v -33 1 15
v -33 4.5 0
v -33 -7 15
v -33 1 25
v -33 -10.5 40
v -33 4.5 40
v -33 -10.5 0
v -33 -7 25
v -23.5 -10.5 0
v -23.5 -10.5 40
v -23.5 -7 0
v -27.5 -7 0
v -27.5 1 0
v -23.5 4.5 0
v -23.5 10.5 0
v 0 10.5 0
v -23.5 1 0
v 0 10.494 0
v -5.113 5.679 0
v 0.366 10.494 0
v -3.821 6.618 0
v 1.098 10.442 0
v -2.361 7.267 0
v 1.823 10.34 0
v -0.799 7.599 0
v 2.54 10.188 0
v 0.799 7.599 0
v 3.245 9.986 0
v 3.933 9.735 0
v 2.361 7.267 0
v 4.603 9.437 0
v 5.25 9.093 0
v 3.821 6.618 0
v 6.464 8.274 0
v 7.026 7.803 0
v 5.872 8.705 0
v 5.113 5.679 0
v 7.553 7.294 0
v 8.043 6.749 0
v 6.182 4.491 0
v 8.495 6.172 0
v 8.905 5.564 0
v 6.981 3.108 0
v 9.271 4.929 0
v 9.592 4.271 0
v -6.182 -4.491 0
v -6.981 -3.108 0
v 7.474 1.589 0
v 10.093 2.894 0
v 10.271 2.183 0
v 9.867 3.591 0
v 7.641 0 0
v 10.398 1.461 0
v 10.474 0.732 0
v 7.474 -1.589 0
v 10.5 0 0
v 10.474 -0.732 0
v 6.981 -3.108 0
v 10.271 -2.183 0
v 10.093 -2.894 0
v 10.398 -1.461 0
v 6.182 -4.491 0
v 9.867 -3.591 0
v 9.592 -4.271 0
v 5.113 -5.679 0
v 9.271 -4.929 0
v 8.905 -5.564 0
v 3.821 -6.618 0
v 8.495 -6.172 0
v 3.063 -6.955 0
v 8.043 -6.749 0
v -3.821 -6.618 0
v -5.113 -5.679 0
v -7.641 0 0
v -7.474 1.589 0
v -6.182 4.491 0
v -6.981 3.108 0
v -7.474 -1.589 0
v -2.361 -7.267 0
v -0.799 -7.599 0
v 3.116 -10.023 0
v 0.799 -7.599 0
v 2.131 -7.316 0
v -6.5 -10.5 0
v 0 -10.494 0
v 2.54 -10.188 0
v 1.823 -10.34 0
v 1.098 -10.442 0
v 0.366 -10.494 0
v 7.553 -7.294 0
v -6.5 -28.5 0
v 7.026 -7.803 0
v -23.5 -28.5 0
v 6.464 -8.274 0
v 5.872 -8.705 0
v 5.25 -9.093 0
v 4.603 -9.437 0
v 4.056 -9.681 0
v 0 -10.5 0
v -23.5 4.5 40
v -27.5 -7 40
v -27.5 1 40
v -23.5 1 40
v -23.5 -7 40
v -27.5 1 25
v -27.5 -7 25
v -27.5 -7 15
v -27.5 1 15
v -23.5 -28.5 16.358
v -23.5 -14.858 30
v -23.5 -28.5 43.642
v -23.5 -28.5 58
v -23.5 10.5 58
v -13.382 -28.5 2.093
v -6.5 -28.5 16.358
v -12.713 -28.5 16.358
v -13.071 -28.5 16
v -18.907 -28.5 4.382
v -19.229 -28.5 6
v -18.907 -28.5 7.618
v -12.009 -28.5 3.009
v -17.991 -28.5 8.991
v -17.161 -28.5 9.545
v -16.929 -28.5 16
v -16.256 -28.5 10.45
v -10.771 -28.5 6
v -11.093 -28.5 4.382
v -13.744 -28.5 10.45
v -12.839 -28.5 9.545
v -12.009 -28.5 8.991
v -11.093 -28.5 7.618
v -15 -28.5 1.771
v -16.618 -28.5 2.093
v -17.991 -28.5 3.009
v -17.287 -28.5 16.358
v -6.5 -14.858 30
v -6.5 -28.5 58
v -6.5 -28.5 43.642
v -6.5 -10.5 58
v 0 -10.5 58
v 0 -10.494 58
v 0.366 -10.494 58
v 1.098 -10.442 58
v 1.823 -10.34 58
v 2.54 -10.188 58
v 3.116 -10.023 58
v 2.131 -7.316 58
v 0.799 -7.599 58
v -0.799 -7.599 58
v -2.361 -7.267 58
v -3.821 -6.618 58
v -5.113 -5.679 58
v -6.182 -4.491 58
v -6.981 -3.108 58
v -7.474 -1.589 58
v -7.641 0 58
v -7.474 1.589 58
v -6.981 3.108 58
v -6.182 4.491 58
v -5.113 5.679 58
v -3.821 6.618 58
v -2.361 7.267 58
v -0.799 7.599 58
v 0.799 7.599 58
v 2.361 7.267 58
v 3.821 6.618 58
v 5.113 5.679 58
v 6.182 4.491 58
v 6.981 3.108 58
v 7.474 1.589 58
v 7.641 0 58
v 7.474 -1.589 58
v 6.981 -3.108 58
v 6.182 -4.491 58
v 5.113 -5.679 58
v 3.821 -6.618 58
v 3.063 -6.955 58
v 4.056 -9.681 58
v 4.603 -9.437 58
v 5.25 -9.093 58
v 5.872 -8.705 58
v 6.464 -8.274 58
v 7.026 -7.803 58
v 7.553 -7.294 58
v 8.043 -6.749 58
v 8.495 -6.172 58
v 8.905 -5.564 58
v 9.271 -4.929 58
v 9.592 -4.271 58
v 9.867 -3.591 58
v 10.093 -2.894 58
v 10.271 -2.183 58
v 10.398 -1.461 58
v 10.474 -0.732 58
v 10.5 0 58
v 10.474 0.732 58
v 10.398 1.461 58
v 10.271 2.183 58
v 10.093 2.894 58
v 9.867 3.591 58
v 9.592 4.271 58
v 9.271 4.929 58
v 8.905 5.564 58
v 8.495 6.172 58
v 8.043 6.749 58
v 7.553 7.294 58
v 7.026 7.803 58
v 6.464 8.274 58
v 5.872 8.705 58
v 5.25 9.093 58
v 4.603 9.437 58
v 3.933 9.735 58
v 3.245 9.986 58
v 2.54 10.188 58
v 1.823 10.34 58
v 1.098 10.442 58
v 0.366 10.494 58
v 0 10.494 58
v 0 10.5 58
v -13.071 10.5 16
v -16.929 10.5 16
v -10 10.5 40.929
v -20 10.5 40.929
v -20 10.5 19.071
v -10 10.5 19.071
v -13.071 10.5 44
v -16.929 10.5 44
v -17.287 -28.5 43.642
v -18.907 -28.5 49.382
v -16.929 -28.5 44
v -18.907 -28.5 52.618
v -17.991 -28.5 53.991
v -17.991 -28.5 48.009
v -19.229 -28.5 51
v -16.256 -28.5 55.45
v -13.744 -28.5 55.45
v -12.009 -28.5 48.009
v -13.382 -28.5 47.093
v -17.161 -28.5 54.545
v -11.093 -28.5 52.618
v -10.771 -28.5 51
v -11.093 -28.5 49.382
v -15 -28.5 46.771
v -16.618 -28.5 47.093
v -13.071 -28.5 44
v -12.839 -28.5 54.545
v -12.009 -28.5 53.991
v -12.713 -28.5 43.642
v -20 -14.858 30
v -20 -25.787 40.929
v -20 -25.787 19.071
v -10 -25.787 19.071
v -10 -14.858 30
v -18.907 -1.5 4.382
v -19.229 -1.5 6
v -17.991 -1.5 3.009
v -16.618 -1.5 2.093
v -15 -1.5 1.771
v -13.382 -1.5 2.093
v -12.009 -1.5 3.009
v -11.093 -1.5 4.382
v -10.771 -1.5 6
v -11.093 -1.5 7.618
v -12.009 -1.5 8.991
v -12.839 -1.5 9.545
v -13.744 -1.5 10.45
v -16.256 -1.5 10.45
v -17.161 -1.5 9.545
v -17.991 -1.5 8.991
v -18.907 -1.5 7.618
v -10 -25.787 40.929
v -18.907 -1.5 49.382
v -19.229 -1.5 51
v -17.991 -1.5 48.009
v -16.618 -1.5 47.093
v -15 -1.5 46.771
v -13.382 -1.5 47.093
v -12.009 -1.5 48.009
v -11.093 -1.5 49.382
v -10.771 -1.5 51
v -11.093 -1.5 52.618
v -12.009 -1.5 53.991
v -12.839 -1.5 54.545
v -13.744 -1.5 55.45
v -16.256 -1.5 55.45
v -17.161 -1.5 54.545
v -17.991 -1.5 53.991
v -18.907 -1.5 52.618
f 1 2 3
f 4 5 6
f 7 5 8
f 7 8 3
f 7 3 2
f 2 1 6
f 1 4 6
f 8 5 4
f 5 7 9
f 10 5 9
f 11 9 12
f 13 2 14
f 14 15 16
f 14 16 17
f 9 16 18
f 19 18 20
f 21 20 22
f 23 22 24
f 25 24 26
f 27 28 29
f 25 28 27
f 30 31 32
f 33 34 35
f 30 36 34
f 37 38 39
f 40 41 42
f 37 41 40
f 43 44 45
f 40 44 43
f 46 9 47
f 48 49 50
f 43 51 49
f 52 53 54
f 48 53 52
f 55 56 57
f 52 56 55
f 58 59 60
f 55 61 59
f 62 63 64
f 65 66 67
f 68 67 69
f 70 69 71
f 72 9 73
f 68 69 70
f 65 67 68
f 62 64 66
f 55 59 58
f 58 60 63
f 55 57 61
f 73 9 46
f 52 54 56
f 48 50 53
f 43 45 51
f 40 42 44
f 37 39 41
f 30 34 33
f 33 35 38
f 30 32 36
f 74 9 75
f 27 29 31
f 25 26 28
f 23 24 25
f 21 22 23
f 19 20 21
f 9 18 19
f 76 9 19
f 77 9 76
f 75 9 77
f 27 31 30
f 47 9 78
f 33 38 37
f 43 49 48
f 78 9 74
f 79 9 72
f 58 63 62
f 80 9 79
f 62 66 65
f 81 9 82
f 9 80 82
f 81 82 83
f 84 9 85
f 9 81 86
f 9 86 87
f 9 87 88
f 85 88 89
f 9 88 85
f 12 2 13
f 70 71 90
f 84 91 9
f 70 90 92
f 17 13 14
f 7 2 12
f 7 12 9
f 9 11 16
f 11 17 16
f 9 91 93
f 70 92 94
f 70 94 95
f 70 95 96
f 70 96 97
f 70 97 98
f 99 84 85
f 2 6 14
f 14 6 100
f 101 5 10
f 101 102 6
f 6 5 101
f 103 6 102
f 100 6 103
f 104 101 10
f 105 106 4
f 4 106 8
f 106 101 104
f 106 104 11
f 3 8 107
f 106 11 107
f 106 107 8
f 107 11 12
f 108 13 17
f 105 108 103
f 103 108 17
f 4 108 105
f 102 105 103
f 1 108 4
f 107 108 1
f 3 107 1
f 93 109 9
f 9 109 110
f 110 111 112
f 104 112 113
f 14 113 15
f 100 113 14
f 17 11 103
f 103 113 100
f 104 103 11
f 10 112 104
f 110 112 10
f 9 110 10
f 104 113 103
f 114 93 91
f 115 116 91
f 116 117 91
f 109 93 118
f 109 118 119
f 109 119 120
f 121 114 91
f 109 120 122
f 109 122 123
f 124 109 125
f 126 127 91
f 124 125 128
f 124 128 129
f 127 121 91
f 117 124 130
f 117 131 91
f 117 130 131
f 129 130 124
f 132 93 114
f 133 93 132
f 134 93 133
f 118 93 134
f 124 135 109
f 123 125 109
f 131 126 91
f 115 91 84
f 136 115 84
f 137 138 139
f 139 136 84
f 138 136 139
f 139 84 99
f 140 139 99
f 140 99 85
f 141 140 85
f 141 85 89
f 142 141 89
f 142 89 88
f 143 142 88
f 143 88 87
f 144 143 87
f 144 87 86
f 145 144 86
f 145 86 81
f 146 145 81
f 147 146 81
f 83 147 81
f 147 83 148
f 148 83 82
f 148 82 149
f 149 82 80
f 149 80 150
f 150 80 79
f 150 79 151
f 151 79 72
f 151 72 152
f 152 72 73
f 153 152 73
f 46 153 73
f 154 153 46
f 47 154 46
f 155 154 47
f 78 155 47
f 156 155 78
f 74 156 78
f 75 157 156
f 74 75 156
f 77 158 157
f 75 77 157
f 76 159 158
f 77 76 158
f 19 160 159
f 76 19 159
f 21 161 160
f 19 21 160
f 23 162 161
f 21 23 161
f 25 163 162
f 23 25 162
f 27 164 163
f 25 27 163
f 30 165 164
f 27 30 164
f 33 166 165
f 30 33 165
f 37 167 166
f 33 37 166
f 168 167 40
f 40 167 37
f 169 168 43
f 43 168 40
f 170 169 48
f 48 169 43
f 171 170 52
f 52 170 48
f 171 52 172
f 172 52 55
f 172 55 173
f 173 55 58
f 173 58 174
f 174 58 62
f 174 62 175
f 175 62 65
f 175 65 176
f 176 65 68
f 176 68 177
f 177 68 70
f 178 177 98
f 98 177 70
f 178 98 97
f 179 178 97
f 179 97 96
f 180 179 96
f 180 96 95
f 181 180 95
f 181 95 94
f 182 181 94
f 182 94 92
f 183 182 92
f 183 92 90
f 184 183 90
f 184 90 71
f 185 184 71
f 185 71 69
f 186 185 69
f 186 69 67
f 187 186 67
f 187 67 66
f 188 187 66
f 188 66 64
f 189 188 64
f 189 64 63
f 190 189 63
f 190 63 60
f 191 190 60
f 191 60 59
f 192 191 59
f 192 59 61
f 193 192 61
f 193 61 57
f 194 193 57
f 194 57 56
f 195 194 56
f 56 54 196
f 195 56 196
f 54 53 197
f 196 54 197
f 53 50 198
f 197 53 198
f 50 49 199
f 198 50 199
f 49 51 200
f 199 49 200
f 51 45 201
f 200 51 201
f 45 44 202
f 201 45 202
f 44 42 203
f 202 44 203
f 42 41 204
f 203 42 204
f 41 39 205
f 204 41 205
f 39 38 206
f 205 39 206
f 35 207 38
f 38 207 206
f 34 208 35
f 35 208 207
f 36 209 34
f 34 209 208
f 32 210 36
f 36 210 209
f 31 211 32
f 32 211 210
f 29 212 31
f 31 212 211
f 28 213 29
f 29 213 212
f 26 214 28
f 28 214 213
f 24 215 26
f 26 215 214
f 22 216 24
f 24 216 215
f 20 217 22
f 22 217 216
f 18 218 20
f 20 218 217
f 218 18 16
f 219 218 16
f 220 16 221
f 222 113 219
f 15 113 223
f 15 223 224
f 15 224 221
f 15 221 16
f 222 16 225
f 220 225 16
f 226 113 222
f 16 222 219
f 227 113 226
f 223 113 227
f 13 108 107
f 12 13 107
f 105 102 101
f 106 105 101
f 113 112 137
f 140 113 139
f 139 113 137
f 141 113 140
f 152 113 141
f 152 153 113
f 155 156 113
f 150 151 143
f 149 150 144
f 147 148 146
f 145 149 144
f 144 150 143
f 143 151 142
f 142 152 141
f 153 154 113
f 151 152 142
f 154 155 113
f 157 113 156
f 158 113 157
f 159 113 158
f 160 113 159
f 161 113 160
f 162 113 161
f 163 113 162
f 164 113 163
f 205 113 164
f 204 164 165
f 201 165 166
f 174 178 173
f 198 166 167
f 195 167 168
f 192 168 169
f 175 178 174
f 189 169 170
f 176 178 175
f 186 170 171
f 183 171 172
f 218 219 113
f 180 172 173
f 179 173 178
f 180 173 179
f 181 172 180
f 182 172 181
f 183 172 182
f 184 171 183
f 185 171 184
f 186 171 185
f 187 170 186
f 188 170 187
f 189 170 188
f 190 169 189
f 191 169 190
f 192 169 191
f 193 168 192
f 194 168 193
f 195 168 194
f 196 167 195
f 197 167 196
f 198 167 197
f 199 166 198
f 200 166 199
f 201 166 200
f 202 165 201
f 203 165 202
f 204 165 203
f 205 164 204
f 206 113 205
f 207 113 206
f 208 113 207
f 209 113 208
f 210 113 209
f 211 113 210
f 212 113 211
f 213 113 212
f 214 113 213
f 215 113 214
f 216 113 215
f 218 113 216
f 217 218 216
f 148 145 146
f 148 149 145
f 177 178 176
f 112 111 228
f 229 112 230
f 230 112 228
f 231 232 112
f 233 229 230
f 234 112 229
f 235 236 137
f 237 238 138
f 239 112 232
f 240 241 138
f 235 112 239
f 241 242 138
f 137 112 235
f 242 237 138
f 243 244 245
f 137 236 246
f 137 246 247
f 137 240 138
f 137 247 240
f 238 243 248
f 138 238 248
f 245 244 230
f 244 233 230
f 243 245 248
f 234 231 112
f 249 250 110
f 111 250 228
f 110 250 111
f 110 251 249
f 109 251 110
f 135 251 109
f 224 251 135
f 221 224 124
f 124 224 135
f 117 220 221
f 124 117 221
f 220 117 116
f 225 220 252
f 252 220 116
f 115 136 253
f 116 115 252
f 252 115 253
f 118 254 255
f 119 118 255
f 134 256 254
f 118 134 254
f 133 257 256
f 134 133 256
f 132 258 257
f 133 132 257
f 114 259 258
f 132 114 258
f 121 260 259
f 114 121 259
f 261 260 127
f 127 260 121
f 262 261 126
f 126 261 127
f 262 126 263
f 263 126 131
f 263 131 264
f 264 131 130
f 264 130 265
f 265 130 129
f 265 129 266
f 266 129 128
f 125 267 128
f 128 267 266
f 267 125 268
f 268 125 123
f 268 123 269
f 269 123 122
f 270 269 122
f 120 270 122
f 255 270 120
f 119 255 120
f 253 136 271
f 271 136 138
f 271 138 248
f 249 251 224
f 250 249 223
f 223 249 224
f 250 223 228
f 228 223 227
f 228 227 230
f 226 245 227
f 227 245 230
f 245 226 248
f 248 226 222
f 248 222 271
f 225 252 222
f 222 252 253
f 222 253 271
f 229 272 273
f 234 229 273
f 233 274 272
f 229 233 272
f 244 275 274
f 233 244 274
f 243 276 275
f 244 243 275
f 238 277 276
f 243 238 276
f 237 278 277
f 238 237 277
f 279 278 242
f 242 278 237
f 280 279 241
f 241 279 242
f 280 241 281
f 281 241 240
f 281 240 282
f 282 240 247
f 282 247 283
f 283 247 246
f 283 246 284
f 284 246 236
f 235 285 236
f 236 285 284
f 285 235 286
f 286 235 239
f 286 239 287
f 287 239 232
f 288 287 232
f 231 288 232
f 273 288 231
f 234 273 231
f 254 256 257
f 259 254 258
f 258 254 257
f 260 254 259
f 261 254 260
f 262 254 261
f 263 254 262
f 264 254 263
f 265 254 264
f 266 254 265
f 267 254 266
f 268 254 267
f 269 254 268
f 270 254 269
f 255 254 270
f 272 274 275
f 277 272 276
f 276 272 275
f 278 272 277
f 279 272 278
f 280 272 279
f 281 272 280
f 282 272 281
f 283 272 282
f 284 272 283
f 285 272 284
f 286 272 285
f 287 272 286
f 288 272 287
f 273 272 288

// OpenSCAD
// file: polyholes.scad
// MK2Clone r2
// based on Mendel90
//
// GNU GPL v2
// nop.head@gmail.com
// hydraraptor.blogspot.com
//
// See http://hydraraptor.blogspot.com/2011/02/polyholes.html
//
function sides(r) = max(round(4 *r),3);
function correctedRadius(r,n) = 0.1 + r / cos(180 / n);
function correctedDiameter(d) = 0.2 + d / cos(180 / sides(d / 2));

module polyCircle(r, center = false) {
    n = sides(r);
    circle(r = correctedRadius(r,n), $fn = n, center = center);
}

module poly_circle(r, center = false) {
	polyCircle(r, center);
}

module polyCylinder(r, h, center = false) {
    n = sides(r);
    cylinder(h = h, r = correctedRadius(r,n), $fn = n, center = center);
}

module poly_cylinder(r, h, center = false) {
	polyCylinder(r,h,center);
}

module polydCylinder(r, center = false) {
    n = sides(r);
    r = correctedRadius(r,n);
    cylinder(h = h, r = r, $fn = n, center = center);
    translate([0, -r, 0])
        cube([r, 2 * r, h]);
}

module poly_d_cylinder(r, center = false) {
	polydCylinder(r,center);
}
// file: bearing.scad
// PRUSA iteration3
// Bearing holders
// GNU GPL v3
// Josef Průša <iam@josefprusa.cz> and contributors
// http://www.reprap.org/wiki/Prusa_i3

use <polyholes.scad>

bearing_diameter = 15;

module horizontal_bearing_base(bearings=1){
 translate(v=[0,0,6]) cube(size = [24,8+bearings*25,12], center = true);	
}
module horizontal_bearing_holes(bearings=1){
 cutter_lenght = 10+bearings*25;
 one_holder_lenght = 8+25;
 holder_lenght = 8+bearings*25;
 
 // Main bearing cut
 difference(){
  translate(v=[0,0,12]) rotate(a=[90,0,0]) translate(v=[0,0,-cutter_lenght/2]) cylinder(h = cutter_lenght, r=bearing_diameter/2, $fn=50);
  // Bearing retainers
  translate(v=[0,1-holder_lenght/2,3]) cube(size = [24,6,8], center = true);
  translate(v=[0,-1+holder_lenght/2,3]) cube(size = [24,6,8], center = true);
 }
 
 // Ziptie cutouts
 ziptie_cut_ofset = 0;
 for ( i = [0 : bearings-1] ){
  // For easier positioning I move them by half of one 
  // bearing holder then add each bearign lenght and then center again
  translate(v=[0,-holder_lenght/2,0]) translate(v=[0,one_holder_lenght/2+i*25,0]) difference(){
   union(){
    translate(v=[0,2-6,12]) rotate(a=[90,0,0]) translate(v=[0,0,0]) cylinder(h = 4, r=12.5, $fn=50);
    translate(v=[0,2+6,12]) rotate(a=[90,0,0]) translate(v=[0,0,0]) cylinder(h = 4, r=12.5, $fn=50);
   }
   translate(v=[0,10,12]) rotate(a=[90,0,0]) translate(v=[0,0,0]) cylinder(h = 24, r=10, $fn=50);
  }
 }
}

module vert_ziptie_base(bearings=1){
   translate([-11.5,0,29])
   rotate([90,0,0])
   rotate([0,90,0])
   translate(v=[0,0,6]) cube(size = [21,8+bearings*25,18], center = true);	
}

module vert_ziptie_cutouts(bearings=1){
   cutter_lenght = 10+bearings*25;
   one_holder_lenght = 8+25;
   holder_lenght = 8+bearings*25;
   ziptie_cut_ofset = 0;

   translate([-12,0,29])
   rotate([90,0,0])
   rotate([0,90,0])
   union(){
 
   // Main bearing cut
   difference(){
      translate(v=[0,0,12]) rotate(a=[90,0,0]) translate(v=[0,0,-cutter_lenght/2]) cylinder(h = cutter_lenght, r=bearing_diameter/2, $fn=50);
      // Bearing retainers
      translate(v=[0,1-holder_lenght/2,3]) cube(size = [24,6,8], center = true);
      translate(v=[0,-1+holder_lenght/2,3]) cube(size = [24,6,8], center = true);
   }
 
   // Ziptie cutouts
   translate([0,0,-3]) scale([1,1,1.125])
      for ( i = [0 : bearings-1] ){
         // For easier positioning I move them by half of one 
         // bearing holder then add each bearing length and then center again
         translate(v=[0,-holder_lenght/2,0]) translate(v=[0,one_holder_lenght/2+i*25,0]) difference(){
         union(){
            translate(v=[0,2-6,12]) rotate(a=[90,0,0]) translate(v=[0,0,0]) cylinder(h = 4, r=12.5, $fn=50);
            translate(v=[0,2+6,12]) rotate(a=[90,0,0]) translate(v=[0,0,0]) cylinder(h = 4, r=12.5, $fn=50);
         }
         translate(v=[0,10,12]) rotate(a=[90,0,0]) translate(v=[0,0,0]) cylinder(h = 24, r=10, $fn=50);
      }
      }
}
 
}

module vertical_ziptie_bearing(){
   union(){
      // translate([-12,0,29])
      // rotate([90,0,0])
      // rotate([0,90,0])
      difference(){
         vert_ziptie_base(2);
         vert_ziptie_cutouts(2);
      }
   }
}

module horizontal_bearing_test(){
 difference(){
  horizontal_bearing_base(1);
  horizontal_bearing_holes(1);
 }
 translate(v=[30,0,0]) difference(){
  horizontal_bearing_base(2);
  horizontal_bearing_holes(2);
 }
 translate(v=[60,0,0]) difference(){
  horizontal_bearing_base(3);
  horizontal_bearing_holes(3);
 }
}



thinwall = 3;
bearing_size = bearing_diameter + 2 * thinwall;

module vertical_bearing_base(){
 translate(v=[-2-bearing_size/4,0,29]) cube(size = [4+bearing_size/2,bearing_size,58], center = true);
 cylinder(h = 58, r=bearing_size/2, $fn = 90);
}

module vertical_bearing_holes(){
  translate(v=[0,0,-1]) poly_cylinder(h = 62, r=bearing_diameter/2);
  rotate(a=[0,0,-70]) translate(v=[bearing_diameter/2-1,-0.5,-1]) cube(size = [thinwall*2,1,62]);

}

vertical_ziptie_bearing();
/*
translate([0,0,0])
difference(){
vertical_bearing_base();
vertical_bearing_holes();
}*/
// main file
// PRUSA iteration3
// X end prototype
// GNU GPL v3
// Josef Průša <iam@josefprusa.cz> and contributors
// http://www.reprap.org/wiki/Prusa_Mendel
// http://prusamendel.org

use <bearing.scad>
use <polyholes.scad>
rod_distance = 45;

module x_end_base(){
// Main block
height = 58;
translate(v=[-15,-9,height/2]) cube(size = [17,39,height], center = true);
// Bearing holder
 vertical_bearing_base();	





difference(){
//belt attachment
translate(v=[-28,-7.5,20]) cube(size = [10,15,40], center = true);
translate(v=[-25,-7.5,20]) cube(size = [5,8,45], center = true);
translate(v=[-25,-7.5,20]) cube(size = [118,8,10], center = true);
}
}



module x_end_holes(){
 vertical_bearing_holes();
// Belt hole
translate(v=[-1,0,0]){
// Stress relief
//translate(v=[-5.5-10+1.5,-10-1,30]) cube(size = [20,1,28], center = true);
translate(v=[-15,-29,30]) rotate([45,0,0]) cube(size = [20,20,20], center = true);
difference(){
	translate(v=[-5.5-10+1.5,-10,30]) cube(size = [10,46,28], center = true);

	

	// Nice edges

	translate(v=[-5.5-10+1.5,-10,30+23]) rotate([0,45,0]) cube(size = [10,46,28], center = true);
	translate(v=[-5.5-10+1.5,-10,30+23]) rotate([0,-45,0]) cube(size = [10,46,28], center = true);
	translate(v=[-5.5-10+1.5,-10,30-23]) rotate([0,45,0]) cube(size = [10,46,28], center = true);
	translate(v=[-5.5-10+1.5,-10,30-23]) rotate([0,-45,0]) cube(size = [10,46,28], center = true);

}
}

// Bottom pushfit rod
translate(v=[-15,-41.5,6]) rotate(a=[-90,0,0]) pushfit_rod(8.1,40);
// Top pushfit rod
translate(v=[-15,-41.5,rod_distance+6]) rotate(a=[-90,0,0]) pushfit_rod(8.1,40);

}


// Final prototype
module x_end_plain(){
 difference(){
  x_end_base();
  x_end_holes();
 }
}

x_end_plain();


module pushfit_rod(diameter,length){
 poly_cylinder(h = length, r=diameter/2);
 difference(){
 	translate(v=[0,-diameter/2.85,length/2]) rotate([0,0,45]) cube(size = [diameter/2,diameter/2,length], center = true);
 	translate(v=[0,-diameter/4-diameter/2-0.4,length/2]) rotate([0,0,0]) cube(size = [diameter,diameter/2,length], center = true);
 }
 //translate(v=[0,-diameter/2-2,length/2]) cube(size = [diameter,1,length], center = true);
}
